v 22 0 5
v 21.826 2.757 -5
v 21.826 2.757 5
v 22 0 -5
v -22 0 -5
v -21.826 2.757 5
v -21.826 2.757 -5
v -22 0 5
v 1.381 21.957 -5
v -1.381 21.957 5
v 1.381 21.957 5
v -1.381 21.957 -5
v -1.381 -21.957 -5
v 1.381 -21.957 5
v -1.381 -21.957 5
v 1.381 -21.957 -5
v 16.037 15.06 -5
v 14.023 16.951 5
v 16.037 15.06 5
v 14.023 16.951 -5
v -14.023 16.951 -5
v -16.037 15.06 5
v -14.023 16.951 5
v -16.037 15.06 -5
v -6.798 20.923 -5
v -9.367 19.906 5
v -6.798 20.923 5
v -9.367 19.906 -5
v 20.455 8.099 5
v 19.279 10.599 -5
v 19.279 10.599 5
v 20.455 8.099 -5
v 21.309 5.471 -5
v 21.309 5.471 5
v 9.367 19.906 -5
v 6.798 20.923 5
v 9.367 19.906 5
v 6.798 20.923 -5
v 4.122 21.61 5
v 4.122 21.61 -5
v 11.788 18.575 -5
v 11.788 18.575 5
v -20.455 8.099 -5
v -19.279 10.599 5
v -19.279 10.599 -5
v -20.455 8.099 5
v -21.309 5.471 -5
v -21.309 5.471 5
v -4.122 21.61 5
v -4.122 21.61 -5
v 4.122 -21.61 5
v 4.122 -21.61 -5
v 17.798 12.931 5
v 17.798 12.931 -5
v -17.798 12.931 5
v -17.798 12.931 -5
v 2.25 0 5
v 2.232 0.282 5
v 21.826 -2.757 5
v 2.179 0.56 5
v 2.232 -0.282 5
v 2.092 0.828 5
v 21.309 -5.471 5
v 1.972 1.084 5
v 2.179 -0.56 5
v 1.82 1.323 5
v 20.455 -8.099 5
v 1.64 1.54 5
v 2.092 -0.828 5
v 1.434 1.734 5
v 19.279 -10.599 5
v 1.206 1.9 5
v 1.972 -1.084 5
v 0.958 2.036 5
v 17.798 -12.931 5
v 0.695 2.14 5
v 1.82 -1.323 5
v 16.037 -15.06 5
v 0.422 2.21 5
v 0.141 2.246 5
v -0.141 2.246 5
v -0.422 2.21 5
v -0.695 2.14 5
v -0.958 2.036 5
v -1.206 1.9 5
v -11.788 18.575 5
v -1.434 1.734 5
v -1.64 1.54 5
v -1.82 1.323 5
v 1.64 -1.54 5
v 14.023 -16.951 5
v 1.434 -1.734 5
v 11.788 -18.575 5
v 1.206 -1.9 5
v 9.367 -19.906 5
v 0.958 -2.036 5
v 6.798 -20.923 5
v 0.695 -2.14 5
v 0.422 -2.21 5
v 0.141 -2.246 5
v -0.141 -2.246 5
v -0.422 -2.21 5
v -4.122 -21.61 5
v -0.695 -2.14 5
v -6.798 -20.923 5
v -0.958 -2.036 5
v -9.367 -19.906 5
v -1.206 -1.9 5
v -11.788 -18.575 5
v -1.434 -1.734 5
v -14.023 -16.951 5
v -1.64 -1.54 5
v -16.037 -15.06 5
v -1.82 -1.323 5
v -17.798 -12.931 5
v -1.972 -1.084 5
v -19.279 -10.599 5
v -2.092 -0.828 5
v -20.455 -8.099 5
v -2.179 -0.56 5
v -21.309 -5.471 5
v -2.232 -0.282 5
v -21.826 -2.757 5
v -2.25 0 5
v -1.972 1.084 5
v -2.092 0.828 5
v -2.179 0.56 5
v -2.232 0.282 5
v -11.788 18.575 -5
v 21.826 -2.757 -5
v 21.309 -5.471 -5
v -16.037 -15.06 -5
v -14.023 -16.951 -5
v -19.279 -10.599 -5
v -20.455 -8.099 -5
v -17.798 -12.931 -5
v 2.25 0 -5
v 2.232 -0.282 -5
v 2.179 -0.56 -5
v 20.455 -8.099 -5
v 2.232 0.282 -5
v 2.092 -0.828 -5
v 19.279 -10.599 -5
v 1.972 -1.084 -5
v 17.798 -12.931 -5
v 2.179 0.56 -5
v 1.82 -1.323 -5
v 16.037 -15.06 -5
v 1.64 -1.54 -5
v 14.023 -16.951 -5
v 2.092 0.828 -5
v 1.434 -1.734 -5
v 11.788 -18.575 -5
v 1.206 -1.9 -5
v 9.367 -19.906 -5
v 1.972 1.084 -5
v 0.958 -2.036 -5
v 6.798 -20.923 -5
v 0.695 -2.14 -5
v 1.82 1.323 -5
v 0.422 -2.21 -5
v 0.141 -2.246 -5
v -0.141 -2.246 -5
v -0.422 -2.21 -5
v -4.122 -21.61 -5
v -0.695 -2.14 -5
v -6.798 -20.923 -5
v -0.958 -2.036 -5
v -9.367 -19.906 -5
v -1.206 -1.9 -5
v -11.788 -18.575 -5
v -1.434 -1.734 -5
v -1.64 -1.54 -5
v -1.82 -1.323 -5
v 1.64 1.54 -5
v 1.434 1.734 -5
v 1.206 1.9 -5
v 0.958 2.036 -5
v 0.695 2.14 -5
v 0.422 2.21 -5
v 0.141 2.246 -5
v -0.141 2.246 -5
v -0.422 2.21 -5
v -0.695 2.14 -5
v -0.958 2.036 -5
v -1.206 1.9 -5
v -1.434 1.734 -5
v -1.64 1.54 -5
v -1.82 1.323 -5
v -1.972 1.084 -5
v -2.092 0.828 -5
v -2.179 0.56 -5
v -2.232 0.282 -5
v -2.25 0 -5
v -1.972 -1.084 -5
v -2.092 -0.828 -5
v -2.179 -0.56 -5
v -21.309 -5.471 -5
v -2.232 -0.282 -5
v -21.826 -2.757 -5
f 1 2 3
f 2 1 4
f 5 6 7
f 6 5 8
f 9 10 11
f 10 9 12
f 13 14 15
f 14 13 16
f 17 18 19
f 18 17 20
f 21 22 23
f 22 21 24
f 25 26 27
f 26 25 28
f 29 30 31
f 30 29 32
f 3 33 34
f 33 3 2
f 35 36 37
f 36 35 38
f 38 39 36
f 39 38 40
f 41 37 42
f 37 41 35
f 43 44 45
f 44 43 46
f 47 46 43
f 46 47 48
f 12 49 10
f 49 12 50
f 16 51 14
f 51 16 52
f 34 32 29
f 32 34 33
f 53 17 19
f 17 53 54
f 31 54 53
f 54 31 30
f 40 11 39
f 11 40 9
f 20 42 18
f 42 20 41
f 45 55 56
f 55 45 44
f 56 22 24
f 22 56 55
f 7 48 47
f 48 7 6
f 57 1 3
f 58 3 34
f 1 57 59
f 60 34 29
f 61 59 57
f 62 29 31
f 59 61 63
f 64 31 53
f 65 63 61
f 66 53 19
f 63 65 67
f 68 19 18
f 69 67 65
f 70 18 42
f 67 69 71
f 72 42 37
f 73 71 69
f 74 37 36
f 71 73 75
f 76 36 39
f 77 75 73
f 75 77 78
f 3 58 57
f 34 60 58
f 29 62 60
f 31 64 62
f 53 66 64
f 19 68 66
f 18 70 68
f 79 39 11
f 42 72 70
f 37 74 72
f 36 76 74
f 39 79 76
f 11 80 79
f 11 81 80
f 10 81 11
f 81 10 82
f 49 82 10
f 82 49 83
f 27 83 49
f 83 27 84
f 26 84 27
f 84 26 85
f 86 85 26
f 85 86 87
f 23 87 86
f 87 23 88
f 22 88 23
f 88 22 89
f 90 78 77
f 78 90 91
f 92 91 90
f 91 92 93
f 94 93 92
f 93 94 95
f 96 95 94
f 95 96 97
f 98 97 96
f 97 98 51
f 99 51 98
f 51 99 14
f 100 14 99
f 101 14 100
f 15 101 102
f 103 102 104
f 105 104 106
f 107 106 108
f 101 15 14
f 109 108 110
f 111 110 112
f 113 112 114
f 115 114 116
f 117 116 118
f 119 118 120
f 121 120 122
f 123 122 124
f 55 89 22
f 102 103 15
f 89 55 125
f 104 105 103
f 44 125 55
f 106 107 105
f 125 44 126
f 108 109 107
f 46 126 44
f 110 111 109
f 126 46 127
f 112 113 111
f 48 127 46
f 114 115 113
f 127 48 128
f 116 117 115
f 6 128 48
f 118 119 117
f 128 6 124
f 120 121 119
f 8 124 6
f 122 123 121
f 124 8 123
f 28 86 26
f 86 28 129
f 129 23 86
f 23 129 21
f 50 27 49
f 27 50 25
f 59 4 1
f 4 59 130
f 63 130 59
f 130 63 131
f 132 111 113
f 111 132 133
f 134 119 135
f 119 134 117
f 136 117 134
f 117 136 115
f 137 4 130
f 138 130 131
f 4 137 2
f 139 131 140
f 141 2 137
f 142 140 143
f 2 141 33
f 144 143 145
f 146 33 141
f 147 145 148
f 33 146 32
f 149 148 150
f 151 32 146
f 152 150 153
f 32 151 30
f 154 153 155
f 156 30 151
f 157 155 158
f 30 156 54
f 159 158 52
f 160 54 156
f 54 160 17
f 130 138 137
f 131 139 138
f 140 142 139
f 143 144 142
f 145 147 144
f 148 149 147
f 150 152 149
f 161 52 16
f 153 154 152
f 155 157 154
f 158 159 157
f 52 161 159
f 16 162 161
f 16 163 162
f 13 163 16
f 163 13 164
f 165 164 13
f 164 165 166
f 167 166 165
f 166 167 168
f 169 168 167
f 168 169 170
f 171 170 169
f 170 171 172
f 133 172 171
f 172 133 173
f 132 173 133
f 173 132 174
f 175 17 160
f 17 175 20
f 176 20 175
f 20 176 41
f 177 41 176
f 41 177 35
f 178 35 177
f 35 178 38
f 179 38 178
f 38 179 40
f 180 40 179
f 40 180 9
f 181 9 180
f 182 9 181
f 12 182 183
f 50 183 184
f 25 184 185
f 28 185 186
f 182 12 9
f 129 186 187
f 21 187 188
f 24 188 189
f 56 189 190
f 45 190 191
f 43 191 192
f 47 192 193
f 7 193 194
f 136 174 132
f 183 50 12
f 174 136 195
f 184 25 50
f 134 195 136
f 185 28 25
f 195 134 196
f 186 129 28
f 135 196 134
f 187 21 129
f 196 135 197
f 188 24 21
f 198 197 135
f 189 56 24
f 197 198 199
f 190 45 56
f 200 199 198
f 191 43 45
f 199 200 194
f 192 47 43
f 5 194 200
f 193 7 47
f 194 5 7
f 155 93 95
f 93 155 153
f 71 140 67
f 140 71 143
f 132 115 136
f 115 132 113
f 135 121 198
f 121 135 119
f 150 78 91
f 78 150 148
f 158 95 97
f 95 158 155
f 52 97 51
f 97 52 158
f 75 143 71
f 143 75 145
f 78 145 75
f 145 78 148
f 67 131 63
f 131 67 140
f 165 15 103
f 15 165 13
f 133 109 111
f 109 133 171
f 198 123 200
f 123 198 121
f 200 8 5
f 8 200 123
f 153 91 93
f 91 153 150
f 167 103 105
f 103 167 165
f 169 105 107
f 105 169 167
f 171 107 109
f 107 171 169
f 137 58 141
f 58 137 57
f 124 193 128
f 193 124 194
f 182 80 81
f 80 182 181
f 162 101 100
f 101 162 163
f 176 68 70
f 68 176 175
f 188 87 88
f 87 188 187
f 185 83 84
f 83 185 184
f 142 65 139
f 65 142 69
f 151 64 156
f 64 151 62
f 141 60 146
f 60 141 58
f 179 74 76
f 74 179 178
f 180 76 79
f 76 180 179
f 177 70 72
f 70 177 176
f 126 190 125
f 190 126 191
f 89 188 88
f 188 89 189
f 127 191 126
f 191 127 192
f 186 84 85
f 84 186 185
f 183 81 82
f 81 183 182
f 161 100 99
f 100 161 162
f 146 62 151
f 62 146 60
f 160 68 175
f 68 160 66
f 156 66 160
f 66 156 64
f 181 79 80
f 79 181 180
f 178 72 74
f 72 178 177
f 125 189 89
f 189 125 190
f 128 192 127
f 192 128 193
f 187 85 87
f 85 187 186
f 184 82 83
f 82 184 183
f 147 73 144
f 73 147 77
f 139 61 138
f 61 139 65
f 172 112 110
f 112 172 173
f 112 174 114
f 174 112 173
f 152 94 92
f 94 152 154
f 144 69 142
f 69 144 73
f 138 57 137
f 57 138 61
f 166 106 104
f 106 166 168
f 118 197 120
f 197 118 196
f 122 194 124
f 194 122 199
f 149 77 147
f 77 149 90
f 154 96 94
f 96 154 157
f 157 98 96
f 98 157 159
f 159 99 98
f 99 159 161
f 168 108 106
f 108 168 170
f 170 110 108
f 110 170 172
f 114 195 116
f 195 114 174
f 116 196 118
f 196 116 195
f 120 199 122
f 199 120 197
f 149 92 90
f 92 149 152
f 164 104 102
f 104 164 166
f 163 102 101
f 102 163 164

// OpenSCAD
$fn = 50;


difference() {
	union() {
		translate(v = [0, 0, -5.0000000000]) {
			cylinder(h = 10, r = 22.0000000000);
		}
	}
	union() {
		translate(v = [0, 0, -100.0000000000]) {
			cylinder(h = 200, r = 2.2500000000);
		}
	}
}
